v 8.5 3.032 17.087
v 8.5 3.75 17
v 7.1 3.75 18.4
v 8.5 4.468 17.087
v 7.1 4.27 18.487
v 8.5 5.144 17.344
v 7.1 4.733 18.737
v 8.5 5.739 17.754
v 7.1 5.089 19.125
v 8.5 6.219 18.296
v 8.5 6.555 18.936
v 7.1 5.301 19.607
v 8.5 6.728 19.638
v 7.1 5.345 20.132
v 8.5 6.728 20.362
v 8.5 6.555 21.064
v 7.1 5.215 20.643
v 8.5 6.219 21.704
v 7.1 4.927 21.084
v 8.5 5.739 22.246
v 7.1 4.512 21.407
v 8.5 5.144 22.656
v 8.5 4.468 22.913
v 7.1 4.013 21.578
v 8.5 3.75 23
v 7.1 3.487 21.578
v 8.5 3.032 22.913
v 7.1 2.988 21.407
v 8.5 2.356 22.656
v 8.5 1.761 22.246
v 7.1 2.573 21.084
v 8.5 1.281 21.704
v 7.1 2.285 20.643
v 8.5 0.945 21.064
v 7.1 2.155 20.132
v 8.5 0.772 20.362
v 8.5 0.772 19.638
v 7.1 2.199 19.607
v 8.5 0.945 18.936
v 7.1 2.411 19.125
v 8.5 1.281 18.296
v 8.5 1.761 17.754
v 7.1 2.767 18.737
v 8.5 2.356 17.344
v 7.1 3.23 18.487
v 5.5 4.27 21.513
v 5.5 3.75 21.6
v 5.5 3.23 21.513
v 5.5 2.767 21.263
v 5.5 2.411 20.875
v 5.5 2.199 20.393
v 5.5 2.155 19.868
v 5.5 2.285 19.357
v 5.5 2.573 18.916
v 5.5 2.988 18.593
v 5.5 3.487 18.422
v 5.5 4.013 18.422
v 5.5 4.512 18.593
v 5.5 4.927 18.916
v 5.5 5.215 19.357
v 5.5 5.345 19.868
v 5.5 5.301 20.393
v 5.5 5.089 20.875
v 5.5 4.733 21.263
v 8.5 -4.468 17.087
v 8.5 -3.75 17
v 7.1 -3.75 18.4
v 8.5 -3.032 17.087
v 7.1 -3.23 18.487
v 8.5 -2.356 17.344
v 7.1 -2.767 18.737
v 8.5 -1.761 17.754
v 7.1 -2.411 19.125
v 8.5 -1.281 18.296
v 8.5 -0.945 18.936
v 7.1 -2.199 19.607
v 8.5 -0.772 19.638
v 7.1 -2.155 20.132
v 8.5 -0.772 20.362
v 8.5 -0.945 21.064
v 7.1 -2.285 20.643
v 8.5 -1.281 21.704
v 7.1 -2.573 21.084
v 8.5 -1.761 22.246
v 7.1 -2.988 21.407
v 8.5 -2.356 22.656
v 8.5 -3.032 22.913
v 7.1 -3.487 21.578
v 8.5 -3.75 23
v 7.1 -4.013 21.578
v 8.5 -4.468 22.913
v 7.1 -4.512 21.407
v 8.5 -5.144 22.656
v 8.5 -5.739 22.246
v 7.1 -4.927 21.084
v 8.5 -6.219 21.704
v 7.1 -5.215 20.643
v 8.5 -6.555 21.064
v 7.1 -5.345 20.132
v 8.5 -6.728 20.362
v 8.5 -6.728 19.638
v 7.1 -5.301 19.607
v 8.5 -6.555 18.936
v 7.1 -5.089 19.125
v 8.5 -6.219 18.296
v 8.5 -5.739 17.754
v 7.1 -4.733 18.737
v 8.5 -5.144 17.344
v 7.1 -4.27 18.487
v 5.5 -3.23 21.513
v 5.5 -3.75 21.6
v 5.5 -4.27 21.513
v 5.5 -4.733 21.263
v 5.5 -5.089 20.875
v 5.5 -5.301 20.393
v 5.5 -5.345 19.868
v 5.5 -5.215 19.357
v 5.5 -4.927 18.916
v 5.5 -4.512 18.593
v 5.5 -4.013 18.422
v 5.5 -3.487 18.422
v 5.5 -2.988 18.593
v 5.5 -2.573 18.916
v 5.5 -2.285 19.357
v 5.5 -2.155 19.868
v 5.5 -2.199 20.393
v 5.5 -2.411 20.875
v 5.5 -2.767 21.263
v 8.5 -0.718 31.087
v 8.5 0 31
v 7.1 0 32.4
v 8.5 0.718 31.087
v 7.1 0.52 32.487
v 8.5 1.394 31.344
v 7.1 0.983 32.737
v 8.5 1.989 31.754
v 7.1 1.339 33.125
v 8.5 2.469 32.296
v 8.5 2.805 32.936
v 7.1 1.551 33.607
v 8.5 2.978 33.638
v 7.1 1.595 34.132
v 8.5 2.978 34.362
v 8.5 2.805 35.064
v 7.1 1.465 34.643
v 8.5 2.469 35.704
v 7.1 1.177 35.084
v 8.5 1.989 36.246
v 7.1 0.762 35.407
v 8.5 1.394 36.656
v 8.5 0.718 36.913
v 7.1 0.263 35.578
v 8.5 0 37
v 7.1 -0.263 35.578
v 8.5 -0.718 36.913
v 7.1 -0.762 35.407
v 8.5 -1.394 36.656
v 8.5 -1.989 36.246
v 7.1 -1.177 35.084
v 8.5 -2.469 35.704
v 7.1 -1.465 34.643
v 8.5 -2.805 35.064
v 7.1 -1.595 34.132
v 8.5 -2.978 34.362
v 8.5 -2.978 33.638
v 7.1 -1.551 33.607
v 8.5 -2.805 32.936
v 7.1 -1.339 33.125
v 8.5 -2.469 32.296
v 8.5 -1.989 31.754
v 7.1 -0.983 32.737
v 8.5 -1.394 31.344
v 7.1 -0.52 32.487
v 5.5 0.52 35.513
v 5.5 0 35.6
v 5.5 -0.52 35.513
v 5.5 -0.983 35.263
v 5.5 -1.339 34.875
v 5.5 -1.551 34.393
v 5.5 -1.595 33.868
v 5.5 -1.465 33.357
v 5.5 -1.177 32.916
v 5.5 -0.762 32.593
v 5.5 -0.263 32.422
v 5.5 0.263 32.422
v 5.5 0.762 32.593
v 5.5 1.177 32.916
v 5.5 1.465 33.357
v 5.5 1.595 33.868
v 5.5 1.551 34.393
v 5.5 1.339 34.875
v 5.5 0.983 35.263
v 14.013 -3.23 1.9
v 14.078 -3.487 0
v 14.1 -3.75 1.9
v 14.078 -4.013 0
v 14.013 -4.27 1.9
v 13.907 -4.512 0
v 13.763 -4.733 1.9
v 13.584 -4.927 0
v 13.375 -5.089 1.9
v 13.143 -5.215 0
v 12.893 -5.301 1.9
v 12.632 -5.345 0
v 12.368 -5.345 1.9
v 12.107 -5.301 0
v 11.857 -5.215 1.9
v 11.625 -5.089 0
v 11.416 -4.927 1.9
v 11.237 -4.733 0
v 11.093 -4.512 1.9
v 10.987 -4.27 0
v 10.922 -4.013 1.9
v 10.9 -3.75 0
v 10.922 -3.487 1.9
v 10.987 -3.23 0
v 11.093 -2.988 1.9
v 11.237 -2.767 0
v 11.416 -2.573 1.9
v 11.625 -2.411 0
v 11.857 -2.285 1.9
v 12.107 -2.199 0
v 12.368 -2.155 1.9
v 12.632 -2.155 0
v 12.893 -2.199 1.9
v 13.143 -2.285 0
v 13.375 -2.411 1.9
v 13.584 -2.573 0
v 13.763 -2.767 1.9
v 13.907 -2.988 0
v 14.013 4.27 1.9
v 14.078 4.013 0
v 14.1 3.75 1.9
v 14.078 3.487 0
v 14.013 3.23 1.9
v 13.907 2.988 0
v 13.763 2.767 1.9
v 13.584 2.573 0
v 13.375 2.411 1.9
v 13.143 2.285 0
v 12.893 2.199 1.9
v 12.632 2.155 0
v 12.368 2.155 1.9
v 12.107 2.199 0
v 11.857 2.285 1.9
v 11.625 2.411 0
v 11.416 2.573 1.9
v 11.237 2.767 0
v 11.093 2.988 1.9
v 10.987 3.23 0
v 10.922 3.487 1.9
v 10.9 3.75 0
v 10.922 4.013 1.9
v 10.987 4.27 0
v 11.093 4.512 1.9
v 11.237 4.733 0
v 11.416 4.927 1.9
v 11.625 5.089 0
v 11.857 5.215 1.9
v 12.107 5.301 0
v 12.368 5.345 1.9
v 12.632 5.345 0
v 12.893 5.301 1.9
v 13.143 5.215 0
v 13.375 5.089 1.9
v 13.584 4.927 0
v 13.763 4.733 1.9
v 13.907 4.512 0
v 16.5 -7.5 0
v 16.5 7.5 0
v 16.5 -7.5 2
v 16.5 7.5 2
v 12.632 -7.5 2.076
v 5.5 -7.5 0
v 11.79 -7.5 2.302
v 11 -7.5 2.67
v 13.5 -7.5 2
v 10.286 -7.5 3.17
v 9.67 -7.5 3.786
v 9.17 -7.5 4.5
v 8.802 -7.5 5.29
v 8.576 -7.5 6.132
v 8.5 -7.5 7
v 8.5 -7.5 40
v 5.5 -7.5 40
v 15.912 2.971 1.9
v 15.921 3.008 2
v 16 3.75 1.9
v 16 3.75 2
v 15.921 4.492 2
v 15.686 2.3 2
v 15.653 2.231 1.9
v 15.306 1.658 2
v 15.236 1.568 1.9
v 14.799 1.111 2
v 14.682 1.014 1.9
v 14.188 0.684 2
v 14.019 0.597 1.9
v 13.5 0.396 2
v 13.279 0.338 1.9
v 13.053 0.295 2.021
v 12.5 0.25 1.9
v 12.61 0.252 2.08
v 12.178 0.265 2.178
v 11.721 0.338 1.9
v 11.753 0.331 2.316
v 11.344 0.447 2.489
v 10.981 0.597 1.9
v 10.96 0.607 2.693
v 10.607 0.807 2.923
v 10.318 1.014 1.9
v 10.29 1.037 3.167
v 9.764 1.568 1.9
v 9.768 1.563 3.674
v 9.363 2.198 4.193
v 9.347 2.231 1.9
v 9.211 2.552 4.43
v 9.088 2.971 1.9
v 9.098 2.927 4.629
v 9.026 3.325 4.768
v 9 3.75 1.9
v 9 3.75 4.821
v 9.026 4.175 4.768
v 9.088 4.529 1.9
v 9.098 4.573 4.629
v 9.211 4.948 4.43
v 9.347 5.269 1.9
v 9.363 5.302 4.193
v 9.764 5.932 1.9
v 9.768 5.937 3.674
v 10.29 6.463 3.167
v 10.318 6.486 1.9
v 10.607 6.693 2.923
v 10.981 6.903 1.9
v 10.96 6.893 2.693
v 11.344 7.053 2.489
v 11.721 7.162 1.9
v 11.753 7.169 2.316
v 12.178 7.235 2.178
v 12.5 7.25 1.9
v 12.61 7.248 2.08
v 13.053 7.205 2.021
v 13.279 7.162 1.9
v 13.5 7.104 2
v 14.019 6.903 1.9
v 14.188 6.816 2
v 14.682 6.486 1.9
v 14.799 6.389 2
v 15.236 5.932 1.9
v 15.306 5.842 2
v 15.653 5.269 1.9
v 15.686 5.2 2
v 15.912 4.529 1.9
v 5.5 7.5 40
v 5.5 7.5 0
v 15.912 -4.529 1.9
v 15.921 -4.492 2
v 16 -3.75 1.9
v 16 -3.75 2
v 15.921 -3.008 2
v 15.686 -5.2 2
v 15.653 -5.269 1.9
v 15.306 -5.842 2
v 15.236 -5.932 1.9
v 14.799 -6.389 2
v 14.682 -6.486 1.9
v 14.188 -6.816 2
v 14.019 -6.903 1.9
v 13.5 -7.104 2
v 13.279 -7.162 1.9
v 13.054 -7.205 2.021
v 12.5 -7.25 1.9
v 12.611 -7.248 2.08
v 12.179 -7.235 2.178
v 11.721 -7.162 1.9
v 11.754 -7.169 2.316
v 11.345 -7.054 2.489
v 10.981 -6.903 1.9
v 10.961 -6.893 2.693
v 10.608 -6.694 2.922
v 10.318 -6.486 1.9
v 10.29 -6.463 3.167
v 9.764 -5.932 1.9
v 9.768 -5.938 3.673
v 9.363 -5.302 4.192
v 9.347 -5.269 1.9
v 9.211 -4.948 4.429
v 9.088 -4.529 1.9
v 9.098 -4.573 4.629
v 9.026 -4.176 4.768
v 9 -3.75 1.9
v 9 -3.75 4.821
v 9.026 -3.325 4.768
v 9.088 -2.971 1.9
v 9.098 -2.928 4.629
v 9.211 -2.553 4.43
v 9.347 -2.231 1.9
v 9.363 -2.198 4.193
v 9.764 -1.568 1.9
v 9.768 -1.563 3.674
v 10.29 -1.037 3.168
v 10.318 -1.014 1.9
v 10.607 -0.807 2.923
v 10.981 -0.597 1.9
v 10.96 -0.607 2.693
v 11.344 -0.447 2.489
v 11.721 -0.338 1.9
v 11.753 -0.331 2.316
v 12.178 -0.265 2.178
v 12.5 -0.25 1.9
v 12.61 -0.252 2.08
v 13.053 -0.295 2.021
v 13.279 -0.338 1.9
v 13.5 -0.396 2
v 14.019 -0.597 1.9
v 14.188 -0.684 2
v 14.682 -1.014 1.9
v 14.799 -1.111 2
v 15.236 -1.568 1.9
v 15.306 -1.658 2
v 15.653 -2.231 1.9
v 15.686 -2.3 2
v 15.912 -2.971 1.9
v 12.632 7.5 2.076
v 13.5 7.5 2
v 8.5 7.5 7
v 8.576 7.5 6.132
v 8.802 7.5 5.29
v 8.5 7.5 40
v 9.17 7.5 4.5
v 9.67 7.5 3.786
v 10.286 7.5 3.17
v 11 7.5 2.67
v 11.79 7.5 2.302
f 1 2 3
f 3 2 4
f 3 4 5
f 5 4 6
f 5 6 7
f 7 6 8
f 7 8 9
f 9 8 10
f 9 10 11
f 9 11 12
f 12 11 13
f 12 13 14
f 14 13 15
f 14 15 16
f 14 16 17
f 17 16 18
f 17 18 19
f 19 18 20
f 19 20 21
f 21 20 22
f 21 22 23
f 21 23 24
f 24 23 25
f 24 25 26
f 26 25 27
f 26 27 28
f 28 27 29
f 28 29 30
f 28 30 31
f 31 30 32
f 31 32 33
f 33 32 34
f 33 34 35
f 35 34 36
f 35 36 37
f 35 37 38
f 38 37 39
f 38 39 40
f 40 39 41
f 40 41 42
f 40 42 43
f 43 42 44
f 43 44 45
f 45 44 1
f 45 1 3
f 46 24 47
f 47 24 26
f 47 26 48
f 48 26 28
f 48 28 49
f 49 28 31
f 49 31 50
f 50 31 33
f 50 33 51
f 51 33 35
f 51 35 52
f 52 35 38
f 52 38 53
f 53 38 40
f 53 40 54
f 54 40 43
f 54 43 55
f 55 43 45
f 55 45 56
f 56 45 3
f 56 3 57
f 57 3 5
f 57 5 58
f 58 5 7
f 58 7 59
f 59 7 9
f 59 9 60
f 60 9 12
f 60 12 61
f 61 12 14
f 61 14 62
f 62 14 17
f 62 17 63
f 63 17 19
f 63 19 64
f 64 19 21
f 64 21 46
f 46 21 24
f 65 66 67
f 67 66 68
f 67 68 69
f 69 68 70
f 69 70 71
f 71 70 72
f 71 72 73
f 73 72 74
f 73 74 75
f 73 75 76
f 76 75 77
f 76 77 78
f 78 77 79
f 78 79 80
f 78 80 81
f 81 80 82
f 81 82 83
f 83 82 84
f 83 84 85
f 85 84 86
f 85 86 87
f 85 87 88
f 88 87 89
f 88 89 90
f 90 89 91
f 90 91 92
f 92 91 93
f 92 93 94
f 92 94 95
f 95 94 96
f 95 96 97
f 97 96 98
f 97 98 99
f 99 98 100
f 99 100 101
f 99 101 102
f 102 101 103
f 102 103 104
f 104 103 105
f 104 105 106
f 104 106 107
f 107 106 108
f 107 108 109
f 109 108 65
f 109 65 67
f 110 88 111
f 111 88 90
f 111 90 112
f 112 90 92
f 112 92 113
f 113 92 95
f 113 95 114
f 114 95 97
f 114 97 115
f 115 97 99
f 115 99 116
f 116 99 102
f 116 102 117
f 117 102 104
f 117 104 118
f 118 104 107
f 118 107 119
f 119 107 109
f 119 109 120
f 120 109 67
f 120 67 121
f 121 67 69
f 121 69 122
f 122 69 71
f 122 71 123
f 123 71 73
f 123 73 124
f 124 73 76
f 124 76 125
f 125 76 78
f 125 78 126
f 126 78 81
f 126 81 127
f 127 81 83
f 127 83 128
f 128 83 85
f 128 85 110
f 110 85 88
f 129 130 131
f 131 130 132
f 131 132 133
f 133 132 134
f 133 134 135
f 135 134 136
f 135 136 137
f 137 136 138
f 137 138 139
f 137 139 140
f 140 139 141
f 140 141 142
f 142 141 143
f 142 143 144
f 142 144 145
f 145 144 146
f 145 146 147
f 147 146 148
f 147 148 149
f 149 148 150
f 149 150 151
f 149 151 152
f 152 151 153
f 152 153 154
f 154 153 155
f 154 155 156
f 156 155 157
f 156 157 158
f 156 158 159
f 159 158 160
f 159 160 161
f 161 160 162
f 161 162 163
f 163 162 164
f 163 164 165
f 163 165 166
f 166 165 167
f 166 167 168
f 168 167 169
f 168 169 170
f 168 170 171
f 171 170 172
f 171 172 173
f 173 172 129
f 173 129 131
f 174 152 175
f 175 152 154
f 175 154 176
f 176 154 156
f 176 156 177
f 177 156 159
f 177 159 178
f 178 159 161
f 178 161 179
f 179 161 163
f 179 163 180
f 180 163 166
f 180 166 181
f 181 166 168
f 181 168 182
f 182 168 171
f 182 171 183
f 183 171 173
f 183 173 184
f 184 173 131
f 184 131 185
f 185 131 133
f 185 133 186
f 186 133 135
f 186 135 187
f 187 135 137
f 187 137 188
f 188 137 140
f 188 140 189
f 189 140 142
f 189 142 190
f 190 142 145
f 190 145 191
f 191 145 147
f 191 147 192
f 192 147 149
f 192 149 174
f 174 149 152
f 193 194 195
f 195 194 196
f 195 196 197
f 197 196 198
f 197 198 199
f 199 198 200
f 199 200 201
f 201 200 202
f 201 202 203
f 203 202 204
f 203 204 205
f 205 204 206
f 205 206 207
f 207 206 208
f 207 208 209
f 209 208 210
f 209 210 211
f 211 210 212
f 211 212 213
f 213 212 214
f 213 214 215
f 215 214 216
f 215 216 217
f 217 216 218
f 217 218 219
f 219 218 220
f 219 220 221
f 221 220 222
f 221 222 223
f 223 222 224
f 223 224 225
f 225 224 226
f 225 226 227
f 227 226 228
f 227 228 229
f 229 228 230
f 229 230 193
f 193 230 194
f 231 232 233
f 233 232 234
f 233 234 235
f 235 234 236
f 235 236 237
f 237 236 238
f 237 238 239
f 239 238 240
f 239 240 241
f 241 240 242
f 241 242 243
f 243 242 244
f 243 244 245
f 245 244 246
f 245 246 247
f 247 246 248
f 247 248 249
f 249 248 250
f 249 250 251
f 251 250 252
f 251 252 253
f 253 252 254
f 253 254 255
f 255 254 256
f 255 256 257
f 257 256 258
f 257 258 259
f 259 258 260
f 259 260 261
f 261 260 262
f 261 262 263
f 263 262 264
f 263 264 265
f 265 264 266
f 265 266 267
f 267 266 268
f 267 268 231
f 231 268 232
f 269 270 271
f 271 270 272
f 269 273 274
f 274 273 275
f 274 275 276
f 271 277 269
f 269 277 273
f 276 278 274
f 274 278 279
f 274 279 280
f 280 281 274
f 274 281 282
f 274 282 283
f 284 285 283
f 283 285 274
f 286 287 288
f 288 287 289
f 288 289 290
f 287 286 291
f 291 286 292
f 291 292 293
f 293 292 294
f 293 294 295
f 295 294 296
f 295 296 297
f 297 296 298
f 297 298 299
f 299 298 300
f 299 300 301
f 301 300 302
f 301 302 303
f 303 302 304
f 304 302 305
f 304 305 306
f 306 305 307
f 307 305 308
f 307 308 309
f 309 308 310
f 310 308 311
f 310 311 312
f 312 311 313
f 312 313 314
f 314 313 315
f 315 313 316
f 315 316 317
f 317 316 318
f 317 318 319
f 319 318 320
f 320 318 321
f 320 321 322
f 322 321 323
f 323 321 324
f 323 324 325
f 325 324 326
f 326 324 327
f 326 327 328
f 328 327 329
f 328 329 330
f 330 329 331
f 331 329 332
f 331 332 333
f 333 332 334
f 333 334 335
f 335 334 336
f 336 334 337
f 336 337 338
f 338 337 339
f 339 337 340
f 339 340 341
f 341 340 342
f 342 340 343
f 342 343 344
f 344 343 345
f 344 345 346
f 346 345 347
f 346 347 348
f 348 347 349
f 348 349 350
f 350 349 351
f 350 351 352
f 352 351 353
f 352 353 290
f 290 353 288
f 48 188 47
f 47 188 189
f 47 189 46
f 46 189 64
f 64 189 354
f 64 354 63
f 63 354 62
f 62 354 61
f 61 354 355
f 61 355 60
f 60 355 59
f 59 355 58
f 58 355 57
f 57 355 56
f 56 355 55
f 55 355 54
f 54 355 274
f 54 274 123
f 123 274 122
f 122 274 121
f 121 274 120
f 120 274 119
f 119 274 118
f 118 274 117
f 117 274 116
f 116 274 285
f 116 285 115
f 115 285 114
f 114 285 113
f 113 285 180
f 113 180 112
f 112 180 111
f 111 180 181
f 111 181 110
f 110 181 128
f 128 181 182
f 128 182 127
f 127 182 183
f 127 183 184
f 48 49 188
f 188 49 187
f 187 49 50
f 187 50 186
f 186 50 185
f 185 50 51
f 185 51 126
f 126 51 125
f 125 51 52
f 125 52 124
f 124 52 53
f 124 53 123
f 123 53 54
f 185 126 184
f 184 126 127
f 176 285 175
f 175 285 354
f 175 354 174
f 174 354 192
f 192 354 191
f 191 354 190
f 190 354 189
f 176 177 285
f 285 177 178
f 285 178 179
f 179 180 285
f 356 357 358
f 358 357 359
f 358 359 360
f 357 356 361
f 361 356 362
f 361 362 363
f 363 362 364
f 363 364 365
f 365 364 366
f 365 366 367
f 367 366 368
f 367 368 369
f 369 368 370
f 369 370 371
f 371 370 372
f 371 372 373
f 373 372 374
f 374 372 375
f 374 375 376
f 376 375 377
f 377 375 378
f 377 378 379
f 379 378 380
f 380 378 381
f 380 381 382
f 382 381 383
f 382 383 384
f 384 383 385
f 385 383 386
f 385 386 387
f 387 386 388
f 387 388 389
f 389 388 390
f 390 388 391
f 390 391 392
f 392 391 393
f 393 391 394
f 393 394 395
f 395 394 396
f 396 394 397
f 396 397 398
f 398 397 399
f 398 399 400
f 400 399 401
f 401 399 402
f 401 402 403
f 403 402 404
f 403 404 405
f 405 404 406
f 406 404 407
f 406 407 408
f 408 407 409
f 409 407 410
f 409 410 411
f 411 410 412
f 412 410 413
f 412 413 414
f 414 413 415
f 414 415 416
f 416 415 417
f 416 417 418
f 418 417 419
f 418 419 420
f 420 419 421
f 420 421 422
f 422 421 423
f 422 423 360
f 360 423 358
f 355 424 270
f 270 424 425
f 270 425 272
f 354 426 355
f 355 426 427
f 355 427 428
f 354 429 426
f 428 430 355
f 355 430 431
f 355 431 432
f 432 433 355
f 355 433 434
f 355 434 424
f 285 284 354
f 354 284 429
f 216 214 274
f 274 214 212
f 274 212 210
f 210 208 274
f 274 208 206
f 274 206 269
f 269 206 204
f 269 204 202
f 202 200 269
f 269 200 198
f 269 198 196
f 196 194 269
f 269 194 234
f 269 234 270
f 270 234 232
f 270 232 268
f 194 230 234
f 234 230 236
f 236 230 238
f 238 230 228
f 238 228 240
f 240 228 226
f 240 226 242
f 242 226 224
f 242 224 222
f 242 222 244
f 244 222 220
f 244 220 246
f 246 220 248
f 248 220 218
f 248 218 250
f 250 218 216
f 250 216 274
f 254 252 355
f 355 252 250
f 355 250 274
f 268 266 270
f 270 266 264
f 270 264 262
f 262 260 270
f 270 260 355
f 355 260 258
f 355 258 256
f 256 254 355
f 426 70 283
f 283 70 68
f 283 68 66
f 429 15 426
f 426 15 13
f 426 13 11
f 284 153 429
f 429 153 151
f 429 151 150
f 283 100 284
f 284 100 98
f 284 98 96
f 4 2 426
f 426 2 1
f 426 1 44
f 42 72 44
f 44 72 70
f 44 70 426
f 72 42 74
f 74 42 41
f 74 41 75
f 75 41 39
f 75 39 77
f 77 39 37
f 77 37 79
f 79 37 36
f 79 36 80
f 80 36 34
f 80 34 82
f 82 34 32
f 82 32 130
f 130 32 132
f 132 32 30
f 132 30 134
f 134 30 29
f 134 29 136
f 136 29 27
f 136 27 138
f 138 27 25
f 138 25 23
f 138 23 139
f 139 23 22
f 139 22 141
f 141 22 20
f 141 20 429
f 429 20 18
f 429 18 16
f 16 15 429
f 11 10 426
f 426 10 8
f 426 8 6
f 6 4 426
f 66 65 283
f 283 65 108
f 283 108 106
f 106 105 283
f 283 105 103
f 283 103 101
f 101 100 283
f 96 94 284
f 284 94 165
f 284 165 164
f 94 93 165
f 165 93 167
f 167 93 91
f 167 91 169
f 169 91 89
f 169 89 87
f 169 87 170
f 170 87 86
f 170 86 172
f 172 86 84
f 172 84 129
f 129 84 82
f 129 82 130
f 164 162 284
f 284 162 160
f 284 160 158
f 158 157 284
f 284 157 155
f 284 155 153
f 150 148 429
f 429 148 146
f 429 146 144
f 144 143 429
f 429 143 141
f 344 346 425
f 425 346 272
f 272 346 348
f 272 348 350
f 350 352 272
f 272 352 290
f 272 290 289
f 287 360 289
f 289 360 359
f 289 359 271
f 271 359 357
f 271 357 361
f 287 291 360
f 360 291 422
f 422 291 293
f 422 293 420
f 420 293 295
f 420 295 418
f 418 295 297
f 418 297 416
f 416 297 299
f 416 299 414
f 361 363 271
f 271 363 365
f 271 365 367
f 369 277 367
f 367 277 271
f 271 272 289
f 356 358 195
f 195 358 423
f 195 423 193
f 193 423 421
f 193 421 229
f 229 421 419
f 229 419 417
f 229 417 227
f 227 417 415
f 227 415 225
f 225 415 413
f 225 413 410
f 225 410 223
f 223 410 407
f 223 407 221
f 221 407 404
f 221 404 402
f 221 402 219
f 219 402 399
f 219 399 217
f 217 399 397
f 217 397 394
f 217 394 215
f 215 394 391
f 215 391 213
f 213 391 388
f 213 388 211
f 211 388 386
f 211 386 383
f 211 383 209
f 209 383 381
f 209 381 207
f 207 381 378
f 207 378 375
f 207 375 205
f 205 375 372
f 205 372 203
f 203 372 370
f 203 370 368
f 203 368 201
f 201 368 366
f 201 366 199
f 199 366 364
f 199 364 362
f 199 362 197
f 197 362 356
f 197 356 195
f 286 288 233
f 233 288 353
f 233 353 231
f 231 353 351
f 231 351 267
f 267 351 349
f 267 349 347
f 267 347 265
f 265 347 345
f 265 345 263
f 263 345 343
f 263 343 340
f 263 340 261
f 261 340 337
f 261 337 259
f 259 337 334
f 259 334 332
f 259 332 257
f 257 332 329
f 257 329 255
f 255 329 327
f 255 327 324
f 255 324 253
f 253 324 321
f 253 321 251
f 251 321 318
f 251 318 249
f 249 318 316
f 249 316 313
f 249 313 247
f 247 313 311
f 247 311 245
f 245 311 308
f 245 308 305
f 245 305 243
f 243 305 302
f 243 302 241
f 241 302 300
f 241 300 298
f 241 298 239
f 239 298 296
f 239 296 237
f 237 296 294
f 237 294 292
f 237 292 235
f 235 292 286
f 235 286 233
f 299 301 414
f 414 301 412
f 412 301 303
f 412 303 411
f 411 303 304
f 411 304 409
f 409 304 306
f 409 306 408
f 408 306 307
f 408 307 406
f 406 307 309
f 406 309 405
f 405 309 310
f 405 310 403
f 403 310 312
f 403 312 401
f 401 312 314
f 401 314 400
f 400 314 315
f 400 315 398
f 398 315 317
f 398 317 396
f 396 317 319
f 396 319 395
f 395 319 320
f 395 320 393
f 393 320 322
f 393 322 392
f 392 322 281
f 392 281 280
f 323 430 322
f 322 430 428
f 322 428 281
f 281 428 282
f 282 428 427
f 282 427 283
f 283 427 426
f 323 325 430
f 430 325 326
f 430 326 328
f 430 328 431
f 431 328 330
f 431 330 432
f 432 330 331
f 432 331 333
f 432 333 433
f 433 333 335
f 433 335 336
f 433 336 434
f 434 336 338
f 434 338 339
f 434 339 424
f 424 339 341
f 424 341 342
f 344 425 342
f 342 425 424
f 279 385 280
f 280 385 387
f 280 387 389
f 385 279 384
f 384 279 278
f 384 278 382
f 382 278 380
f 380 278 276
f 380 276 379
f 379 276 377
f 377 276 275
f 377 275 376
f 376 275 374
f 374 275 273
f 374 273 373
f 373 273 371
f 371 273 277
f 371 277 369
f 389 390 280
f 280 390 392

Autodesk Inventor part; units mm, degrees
ref_plane "YZ Plane" through (0, 0, 0) normal (1, 0, 0) x (0, 1, 0)
ref_plane "XZ Plane" through (0, 0, 0) normal (0, 1, 0) x (-1, 0, 0)
ref_plane "XY Plane" through (0, 0, 0) normal (0, 0, 1) x (1, 0, 0)
ref_plane "Work Plane1" through (0, 0, 0) normal (0, 0, 1) x (1, 0, 0)
sketch "Sketch1" plane through (0, 0, 0) normal (0, 0, 1) x (1, 0, 0)
  circle A0 centre (0, 0) radius 20 construction
  circle A1 centre (10.45, 12.5) radius 1.75 construction
  circle A2 centre (10.45, -12.5) radius 1.75 construction
  circle A3 centre (-10.45, 12.5) radius 1.75 construction
  circle A4 centre (-10.45, -12.5) radius 1.75 construction
  line L0 (-6.5984, 12.21) -> (-6.5984, 15.25) construction
  line L1 (-6.5984, 15.25) -> (6.6016, 15.25) construction
  line L2 (6.6016, 15.25) -> (6.6016, 12.21) construction
  line L3 (6.6016, 12.21) -> (-6.5984, 12.21) construction
  line L4 (6.6016, -12.21) -> (6.6016, -15.25) construction
  line L5 (6.6016, -15.25) -> (-6.5984, -15.25) construction
  line L6 (-6.5984, -15.25) -> (-6.5984, -12.21) construction
  line L7 (-6.5984, -12.21) -> (6.6016, -12.21) construction
  line L8 (5.5, 7.5) -> (5.5, -7.5)
  line L9 (5.5, -7.5) -> (8.5, -7.5)
  line L10 (8.5, -7.5) -> (8.5, 7.5)
  line L11 (8.5, 7.5) -> (5.5, 7.5)
  line L12 (5.5, 7.5) -> (8.5, -7.5) construction
  line L13 (5.5, -7.5) -> (8.5, 7.5) construction
  line L14 (0, 0) -> (7, 0) construction
  point P0 (0, 0)
  dimension "d0" = 7
  dimension "d1" = 3
  dimension "d2" = 15
extrude "Extrusion1" add sketch "Sketch1" along normal blind 40
sketch "Sketch2" plane through (0, 0, 0) normal (0, 0, -1) x (-1, 0, 0)
  line L0 (-5.5, -7.5) -> (-8.5, -7.5) projected
  line L1 (-8.5, 7.5) -> (-5.5, 7.5) projected
  line L2 (-8.5, -7.5) -> (-8.5, 7.5)
  line L3 (-8.5, 7.5) -> (-16.5, 7.5)
  line L4 (-16.5, 7.5) -> (-16.5, -7.5)
  line L5 (-16.5, -7.5) -> (-8.5, -7.5)
  point P0 (0, 0)
  dimension "d5" = 8
extrude "Extrusion2" add sketch "Sketch2" against normal blind 2
sketch "Sketch3" plane through (0, 0, 2) normal (0, 0, 1) x (1, 0, 0)
  line L0 (16.5, -7.5) -> (16.5, 7.5) construction
  line L1 (16.5, 7.5) -> (8.5, 7.5) construction
  line L2 (8.5, -7.5) -> (8.5, 7.5) construction
  line L3 (8.5, -7.5) -> (16.5, -7.5) construction
  point P0 (0, 0)
  point P1 (12.5, 3.75)
  point P2 (12.5, -3.75)
  dimension "d9" = 3.75
  dimension "d10" = 4
  dimension "d11" = 3.75
  dimension "d12" = 4
hole "Hole1" at (12.5, 3.75, 2) at (12.5, -3.75, 2) direction (0, 0, -1) diameter 3.2 end through all
sketch "Sketch4" plane through (8.5, -7.5, 40) normal (1, 0, 0) x (0, 0, -1)
  line L0 (0, 0) -> (0, 15) projected
  line L1 (38, 0) -> (0, 0) projected
  line L2 (38, 15) -> (0, 15) projected
  point P0 (40, 7.5)
  point P1 (6, 7.5)
  point P2 (20, 3.75)
  point P3 (20, 11.25)
  dimension "d20" = 20
  dimension "d21" = 20
  dimension "d22" = 3.75
  dimension "d23" = 3.75
  dimension "d24" = 7.5
  dimension "d25" = 6
hole "Hole2" at (8.5, 0, 34) at (8.5, -3.75, 20) at (8.5, 3.75, 20) direction (-1, 0, 0) diameter 3.2 end through all countersink diameter 6 countersink angle 90
sketch "Sketch5" plane through (0, 0, 2) normal (0, 0, 1) x (1, 0, 0)
  circle A0 centre (12.5, 3.75) radius 1.6 projected
  circle A1 centre (12.5, -3.75) radius 1.6 projected
  circle A2 centre (12.5, 3.75) radius 3.5
  circle A3 centre (12.5, -3.75) radius 3.5
  point P0 (0, 0)
  dimension "d37" = 7
  dimension "d38" = 7
extrude "Extrusion3" cut sketch "Sketch5" against normal blind 0.1
fillet "Fillet2" radius 5 1 edges at (8.5, 0, 2)
properties part number "colorSensorHolder2"
